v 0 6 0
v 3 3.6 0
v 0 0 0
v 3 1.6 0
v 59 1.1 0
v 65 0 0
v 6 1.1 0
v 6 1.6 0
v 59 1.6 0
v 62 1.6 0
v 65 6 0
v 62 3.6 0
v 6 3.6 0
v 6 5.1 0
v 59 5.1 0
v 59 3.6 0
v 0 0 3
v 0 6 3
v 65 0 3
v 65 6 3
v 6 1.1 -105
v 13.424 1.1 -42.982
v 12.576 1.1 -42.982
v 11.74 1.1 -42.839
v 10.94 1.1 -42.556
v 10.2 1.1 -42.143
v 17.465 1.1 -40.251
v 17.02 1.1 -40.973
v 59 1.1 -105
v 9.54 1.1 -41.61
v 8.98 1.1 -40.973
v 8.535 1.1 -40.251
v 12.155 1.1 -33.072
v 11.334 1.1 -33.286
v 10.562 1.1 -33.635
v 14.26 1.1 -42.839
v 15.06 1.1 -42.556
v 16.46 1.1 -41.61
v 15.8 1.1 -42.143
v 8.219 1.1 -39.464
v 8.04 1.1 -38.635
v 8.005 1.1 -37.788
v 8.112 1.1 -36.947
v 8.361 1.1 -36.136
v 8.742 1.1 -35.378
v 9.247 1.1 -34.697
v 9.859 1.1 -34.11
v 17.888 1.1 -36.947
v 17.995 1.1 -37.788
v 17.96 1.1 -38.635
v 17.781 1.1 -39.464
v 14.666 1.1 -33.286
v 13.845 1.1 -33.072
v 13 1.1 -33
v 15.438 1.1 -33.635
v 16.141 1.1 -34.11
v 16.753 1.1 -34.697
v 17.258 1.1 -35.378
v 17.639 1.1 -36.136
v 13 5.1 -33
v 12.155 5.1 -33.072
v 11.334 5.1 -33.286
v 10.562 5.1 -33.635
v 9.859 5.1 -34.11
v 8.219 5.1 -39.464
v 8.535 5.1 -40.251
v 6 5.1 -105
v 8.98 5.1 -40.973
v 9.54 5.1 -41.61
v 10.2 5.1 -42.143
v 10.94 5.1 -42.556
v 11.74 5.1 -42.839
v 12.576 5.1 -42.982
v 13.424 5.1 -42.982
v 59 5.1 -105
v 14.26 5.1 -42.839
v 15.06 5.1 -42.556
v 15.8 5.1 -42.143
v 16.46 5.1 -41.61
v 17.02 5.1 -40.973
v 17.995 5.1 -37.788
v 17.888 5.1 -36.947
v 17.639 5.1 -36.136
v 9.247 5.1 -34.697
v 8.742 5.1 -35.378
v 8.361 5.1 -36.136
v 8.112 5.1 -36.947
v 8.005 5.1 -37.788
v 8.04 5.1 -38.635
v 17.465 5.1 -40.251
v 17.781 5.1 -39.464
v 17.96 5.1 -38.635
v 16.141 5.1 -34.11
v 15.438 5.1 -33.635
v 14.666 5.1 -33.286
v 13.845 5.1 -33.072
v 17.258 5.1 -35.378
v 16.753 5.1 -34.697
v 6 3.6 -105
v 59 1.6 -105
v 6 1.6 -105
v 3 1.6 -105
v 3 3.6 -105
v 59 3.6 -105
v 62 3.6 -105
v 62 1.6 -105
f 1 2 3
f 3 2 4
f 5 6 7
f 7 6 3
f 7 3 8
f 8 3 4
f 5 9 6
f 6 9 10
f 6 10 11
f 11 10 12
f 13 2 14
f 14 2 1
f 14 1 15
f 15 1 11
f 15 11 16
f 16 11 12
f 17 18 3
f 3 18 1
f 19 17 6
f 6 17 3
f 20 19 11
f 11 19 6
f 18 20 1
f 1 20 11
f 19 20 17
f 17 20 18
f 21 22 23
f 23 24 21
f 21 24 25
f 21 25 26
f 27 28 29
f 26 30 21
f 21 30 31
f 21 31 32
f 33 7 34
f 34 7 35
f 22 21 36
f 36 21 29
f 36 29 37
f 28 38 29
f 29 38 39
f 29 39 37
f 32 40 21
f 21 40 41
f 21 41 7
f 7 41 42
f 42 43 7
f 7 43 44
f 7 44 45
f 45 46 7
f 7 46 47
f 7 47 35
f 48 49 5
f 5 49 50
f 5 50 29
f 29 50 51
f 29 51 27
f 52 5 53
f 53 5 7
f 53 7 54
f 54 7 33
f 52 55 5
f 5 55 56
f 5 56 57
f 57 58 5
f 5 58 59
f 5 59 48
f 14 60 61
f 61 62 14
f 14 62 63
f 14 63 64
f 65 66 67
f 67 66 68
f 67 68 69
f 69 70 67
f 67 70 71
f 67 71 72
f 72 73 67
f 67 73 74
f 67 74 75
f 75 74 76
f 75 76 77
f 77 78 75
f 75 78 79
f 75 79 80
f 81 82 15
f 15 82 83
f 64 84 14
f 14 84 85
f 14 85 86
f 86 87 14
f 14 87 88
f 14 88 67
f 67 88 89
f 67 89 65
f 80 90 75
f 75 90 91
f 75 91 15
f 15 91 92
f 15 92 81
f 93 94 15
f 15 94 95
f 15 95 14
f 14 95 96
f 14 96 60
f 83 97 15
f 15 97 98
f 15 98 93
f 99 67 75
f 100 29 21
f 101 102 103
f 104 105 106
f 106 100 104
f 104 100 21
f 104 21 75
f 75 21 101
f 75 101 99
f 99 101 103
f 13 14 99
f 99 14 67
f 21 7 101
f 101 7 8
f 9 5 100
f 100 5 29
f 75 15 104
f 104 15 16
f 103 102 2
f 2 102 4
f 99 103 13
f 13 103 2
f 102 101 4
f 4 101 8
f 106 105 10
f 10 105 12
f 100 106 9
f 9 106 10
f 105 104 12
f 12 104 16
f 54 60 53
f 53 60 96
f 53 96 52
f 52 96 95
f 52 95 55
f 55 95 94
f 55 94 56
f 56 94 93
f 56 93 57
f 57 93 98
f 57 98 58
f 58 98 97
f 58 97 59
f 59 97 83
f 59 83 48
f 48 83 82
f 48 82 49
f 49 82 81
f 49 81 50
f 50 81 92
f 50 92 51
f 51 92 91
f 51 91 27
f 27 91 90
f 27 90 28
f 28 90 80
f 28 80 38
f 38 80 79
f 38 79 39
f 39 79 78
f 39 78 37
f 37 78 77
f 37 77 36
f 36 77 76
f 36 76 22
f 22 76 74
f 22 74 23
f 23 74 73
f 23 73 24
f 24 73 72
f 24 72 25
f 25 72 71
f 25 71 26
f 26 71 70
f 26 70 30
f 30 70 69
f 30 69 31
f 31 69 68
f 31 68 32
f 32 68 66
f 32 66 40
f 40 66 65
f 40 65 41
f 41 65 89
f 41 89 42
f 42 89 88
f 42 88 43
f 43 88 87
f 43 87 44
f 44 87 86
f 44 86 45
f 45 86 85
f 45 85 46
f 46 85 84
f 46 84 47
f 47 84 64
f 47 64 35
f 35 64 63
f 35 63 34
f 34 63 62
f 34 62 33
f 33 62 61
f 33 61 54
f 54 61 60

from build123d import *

# Parameters (mm, degrees)
SKETCH1_W           = 65
SKETCH1_H           = 6
BOSS_EXTRUDE1_DEPTH = 3
SKETCH2_W           = 53
SKETCH2_H           = 4
SKETCH2_W_2         = 3
SKETCH2_H_2         = 2
BOSS_EXTRUDE2_DEPTH = 105
SKETCH3_R           = 5
CUT_EXTRUDE1_DEPTH  = 98


with BuildPart() as part:
    # Sketch1 → Boss-Extrude1 (new body)
    with BuildSketch(Plane.XY):
        with Locations((32.5, 3)):
            Rectangle(SKETCH1_W, SKETCH1_H)
    extrude(amount=BOSS_EXTRUDE1_DEPTH)

    # Sketch2 → Boss-Extrude2 (add)
    with BuildSketch(Plane(origin=(0, 0, 0), x_dir=(-1, 0, 0), z_dir=(0, 0, -1))):
        with Locations((-32.5, 3.1)):
            Rectangle(SKETCH2_W, SKETCH2_H)
        with Locations((-60.5, 2.6)):
            Rectangle(SKETCH2_W_2, SKETCH2_H_2)
        with Locations((-4.5, 2.6)):
            Rectangle(SKETCH2_W_2, SKETCH2_H_2)
    extrude(amount=BOSS_EXTRUDE2_DEPTH)

    # Sketch3 → Cut-Extrude1 (cut)
    with BuildSketch(Plane(origin=(0, 5.1, 0), x_dir=(1, 0, 0), z_dir=(0, 1, 0))):
        with Locations(Location((13, 38, 0), (0, 0, 270))):
            Circle(SKETCH3_R)
    extrude(amount=-CUT_EXTRUDE1_DEPTH, mode=Mode.SUBTRACT)


solid = part.part
